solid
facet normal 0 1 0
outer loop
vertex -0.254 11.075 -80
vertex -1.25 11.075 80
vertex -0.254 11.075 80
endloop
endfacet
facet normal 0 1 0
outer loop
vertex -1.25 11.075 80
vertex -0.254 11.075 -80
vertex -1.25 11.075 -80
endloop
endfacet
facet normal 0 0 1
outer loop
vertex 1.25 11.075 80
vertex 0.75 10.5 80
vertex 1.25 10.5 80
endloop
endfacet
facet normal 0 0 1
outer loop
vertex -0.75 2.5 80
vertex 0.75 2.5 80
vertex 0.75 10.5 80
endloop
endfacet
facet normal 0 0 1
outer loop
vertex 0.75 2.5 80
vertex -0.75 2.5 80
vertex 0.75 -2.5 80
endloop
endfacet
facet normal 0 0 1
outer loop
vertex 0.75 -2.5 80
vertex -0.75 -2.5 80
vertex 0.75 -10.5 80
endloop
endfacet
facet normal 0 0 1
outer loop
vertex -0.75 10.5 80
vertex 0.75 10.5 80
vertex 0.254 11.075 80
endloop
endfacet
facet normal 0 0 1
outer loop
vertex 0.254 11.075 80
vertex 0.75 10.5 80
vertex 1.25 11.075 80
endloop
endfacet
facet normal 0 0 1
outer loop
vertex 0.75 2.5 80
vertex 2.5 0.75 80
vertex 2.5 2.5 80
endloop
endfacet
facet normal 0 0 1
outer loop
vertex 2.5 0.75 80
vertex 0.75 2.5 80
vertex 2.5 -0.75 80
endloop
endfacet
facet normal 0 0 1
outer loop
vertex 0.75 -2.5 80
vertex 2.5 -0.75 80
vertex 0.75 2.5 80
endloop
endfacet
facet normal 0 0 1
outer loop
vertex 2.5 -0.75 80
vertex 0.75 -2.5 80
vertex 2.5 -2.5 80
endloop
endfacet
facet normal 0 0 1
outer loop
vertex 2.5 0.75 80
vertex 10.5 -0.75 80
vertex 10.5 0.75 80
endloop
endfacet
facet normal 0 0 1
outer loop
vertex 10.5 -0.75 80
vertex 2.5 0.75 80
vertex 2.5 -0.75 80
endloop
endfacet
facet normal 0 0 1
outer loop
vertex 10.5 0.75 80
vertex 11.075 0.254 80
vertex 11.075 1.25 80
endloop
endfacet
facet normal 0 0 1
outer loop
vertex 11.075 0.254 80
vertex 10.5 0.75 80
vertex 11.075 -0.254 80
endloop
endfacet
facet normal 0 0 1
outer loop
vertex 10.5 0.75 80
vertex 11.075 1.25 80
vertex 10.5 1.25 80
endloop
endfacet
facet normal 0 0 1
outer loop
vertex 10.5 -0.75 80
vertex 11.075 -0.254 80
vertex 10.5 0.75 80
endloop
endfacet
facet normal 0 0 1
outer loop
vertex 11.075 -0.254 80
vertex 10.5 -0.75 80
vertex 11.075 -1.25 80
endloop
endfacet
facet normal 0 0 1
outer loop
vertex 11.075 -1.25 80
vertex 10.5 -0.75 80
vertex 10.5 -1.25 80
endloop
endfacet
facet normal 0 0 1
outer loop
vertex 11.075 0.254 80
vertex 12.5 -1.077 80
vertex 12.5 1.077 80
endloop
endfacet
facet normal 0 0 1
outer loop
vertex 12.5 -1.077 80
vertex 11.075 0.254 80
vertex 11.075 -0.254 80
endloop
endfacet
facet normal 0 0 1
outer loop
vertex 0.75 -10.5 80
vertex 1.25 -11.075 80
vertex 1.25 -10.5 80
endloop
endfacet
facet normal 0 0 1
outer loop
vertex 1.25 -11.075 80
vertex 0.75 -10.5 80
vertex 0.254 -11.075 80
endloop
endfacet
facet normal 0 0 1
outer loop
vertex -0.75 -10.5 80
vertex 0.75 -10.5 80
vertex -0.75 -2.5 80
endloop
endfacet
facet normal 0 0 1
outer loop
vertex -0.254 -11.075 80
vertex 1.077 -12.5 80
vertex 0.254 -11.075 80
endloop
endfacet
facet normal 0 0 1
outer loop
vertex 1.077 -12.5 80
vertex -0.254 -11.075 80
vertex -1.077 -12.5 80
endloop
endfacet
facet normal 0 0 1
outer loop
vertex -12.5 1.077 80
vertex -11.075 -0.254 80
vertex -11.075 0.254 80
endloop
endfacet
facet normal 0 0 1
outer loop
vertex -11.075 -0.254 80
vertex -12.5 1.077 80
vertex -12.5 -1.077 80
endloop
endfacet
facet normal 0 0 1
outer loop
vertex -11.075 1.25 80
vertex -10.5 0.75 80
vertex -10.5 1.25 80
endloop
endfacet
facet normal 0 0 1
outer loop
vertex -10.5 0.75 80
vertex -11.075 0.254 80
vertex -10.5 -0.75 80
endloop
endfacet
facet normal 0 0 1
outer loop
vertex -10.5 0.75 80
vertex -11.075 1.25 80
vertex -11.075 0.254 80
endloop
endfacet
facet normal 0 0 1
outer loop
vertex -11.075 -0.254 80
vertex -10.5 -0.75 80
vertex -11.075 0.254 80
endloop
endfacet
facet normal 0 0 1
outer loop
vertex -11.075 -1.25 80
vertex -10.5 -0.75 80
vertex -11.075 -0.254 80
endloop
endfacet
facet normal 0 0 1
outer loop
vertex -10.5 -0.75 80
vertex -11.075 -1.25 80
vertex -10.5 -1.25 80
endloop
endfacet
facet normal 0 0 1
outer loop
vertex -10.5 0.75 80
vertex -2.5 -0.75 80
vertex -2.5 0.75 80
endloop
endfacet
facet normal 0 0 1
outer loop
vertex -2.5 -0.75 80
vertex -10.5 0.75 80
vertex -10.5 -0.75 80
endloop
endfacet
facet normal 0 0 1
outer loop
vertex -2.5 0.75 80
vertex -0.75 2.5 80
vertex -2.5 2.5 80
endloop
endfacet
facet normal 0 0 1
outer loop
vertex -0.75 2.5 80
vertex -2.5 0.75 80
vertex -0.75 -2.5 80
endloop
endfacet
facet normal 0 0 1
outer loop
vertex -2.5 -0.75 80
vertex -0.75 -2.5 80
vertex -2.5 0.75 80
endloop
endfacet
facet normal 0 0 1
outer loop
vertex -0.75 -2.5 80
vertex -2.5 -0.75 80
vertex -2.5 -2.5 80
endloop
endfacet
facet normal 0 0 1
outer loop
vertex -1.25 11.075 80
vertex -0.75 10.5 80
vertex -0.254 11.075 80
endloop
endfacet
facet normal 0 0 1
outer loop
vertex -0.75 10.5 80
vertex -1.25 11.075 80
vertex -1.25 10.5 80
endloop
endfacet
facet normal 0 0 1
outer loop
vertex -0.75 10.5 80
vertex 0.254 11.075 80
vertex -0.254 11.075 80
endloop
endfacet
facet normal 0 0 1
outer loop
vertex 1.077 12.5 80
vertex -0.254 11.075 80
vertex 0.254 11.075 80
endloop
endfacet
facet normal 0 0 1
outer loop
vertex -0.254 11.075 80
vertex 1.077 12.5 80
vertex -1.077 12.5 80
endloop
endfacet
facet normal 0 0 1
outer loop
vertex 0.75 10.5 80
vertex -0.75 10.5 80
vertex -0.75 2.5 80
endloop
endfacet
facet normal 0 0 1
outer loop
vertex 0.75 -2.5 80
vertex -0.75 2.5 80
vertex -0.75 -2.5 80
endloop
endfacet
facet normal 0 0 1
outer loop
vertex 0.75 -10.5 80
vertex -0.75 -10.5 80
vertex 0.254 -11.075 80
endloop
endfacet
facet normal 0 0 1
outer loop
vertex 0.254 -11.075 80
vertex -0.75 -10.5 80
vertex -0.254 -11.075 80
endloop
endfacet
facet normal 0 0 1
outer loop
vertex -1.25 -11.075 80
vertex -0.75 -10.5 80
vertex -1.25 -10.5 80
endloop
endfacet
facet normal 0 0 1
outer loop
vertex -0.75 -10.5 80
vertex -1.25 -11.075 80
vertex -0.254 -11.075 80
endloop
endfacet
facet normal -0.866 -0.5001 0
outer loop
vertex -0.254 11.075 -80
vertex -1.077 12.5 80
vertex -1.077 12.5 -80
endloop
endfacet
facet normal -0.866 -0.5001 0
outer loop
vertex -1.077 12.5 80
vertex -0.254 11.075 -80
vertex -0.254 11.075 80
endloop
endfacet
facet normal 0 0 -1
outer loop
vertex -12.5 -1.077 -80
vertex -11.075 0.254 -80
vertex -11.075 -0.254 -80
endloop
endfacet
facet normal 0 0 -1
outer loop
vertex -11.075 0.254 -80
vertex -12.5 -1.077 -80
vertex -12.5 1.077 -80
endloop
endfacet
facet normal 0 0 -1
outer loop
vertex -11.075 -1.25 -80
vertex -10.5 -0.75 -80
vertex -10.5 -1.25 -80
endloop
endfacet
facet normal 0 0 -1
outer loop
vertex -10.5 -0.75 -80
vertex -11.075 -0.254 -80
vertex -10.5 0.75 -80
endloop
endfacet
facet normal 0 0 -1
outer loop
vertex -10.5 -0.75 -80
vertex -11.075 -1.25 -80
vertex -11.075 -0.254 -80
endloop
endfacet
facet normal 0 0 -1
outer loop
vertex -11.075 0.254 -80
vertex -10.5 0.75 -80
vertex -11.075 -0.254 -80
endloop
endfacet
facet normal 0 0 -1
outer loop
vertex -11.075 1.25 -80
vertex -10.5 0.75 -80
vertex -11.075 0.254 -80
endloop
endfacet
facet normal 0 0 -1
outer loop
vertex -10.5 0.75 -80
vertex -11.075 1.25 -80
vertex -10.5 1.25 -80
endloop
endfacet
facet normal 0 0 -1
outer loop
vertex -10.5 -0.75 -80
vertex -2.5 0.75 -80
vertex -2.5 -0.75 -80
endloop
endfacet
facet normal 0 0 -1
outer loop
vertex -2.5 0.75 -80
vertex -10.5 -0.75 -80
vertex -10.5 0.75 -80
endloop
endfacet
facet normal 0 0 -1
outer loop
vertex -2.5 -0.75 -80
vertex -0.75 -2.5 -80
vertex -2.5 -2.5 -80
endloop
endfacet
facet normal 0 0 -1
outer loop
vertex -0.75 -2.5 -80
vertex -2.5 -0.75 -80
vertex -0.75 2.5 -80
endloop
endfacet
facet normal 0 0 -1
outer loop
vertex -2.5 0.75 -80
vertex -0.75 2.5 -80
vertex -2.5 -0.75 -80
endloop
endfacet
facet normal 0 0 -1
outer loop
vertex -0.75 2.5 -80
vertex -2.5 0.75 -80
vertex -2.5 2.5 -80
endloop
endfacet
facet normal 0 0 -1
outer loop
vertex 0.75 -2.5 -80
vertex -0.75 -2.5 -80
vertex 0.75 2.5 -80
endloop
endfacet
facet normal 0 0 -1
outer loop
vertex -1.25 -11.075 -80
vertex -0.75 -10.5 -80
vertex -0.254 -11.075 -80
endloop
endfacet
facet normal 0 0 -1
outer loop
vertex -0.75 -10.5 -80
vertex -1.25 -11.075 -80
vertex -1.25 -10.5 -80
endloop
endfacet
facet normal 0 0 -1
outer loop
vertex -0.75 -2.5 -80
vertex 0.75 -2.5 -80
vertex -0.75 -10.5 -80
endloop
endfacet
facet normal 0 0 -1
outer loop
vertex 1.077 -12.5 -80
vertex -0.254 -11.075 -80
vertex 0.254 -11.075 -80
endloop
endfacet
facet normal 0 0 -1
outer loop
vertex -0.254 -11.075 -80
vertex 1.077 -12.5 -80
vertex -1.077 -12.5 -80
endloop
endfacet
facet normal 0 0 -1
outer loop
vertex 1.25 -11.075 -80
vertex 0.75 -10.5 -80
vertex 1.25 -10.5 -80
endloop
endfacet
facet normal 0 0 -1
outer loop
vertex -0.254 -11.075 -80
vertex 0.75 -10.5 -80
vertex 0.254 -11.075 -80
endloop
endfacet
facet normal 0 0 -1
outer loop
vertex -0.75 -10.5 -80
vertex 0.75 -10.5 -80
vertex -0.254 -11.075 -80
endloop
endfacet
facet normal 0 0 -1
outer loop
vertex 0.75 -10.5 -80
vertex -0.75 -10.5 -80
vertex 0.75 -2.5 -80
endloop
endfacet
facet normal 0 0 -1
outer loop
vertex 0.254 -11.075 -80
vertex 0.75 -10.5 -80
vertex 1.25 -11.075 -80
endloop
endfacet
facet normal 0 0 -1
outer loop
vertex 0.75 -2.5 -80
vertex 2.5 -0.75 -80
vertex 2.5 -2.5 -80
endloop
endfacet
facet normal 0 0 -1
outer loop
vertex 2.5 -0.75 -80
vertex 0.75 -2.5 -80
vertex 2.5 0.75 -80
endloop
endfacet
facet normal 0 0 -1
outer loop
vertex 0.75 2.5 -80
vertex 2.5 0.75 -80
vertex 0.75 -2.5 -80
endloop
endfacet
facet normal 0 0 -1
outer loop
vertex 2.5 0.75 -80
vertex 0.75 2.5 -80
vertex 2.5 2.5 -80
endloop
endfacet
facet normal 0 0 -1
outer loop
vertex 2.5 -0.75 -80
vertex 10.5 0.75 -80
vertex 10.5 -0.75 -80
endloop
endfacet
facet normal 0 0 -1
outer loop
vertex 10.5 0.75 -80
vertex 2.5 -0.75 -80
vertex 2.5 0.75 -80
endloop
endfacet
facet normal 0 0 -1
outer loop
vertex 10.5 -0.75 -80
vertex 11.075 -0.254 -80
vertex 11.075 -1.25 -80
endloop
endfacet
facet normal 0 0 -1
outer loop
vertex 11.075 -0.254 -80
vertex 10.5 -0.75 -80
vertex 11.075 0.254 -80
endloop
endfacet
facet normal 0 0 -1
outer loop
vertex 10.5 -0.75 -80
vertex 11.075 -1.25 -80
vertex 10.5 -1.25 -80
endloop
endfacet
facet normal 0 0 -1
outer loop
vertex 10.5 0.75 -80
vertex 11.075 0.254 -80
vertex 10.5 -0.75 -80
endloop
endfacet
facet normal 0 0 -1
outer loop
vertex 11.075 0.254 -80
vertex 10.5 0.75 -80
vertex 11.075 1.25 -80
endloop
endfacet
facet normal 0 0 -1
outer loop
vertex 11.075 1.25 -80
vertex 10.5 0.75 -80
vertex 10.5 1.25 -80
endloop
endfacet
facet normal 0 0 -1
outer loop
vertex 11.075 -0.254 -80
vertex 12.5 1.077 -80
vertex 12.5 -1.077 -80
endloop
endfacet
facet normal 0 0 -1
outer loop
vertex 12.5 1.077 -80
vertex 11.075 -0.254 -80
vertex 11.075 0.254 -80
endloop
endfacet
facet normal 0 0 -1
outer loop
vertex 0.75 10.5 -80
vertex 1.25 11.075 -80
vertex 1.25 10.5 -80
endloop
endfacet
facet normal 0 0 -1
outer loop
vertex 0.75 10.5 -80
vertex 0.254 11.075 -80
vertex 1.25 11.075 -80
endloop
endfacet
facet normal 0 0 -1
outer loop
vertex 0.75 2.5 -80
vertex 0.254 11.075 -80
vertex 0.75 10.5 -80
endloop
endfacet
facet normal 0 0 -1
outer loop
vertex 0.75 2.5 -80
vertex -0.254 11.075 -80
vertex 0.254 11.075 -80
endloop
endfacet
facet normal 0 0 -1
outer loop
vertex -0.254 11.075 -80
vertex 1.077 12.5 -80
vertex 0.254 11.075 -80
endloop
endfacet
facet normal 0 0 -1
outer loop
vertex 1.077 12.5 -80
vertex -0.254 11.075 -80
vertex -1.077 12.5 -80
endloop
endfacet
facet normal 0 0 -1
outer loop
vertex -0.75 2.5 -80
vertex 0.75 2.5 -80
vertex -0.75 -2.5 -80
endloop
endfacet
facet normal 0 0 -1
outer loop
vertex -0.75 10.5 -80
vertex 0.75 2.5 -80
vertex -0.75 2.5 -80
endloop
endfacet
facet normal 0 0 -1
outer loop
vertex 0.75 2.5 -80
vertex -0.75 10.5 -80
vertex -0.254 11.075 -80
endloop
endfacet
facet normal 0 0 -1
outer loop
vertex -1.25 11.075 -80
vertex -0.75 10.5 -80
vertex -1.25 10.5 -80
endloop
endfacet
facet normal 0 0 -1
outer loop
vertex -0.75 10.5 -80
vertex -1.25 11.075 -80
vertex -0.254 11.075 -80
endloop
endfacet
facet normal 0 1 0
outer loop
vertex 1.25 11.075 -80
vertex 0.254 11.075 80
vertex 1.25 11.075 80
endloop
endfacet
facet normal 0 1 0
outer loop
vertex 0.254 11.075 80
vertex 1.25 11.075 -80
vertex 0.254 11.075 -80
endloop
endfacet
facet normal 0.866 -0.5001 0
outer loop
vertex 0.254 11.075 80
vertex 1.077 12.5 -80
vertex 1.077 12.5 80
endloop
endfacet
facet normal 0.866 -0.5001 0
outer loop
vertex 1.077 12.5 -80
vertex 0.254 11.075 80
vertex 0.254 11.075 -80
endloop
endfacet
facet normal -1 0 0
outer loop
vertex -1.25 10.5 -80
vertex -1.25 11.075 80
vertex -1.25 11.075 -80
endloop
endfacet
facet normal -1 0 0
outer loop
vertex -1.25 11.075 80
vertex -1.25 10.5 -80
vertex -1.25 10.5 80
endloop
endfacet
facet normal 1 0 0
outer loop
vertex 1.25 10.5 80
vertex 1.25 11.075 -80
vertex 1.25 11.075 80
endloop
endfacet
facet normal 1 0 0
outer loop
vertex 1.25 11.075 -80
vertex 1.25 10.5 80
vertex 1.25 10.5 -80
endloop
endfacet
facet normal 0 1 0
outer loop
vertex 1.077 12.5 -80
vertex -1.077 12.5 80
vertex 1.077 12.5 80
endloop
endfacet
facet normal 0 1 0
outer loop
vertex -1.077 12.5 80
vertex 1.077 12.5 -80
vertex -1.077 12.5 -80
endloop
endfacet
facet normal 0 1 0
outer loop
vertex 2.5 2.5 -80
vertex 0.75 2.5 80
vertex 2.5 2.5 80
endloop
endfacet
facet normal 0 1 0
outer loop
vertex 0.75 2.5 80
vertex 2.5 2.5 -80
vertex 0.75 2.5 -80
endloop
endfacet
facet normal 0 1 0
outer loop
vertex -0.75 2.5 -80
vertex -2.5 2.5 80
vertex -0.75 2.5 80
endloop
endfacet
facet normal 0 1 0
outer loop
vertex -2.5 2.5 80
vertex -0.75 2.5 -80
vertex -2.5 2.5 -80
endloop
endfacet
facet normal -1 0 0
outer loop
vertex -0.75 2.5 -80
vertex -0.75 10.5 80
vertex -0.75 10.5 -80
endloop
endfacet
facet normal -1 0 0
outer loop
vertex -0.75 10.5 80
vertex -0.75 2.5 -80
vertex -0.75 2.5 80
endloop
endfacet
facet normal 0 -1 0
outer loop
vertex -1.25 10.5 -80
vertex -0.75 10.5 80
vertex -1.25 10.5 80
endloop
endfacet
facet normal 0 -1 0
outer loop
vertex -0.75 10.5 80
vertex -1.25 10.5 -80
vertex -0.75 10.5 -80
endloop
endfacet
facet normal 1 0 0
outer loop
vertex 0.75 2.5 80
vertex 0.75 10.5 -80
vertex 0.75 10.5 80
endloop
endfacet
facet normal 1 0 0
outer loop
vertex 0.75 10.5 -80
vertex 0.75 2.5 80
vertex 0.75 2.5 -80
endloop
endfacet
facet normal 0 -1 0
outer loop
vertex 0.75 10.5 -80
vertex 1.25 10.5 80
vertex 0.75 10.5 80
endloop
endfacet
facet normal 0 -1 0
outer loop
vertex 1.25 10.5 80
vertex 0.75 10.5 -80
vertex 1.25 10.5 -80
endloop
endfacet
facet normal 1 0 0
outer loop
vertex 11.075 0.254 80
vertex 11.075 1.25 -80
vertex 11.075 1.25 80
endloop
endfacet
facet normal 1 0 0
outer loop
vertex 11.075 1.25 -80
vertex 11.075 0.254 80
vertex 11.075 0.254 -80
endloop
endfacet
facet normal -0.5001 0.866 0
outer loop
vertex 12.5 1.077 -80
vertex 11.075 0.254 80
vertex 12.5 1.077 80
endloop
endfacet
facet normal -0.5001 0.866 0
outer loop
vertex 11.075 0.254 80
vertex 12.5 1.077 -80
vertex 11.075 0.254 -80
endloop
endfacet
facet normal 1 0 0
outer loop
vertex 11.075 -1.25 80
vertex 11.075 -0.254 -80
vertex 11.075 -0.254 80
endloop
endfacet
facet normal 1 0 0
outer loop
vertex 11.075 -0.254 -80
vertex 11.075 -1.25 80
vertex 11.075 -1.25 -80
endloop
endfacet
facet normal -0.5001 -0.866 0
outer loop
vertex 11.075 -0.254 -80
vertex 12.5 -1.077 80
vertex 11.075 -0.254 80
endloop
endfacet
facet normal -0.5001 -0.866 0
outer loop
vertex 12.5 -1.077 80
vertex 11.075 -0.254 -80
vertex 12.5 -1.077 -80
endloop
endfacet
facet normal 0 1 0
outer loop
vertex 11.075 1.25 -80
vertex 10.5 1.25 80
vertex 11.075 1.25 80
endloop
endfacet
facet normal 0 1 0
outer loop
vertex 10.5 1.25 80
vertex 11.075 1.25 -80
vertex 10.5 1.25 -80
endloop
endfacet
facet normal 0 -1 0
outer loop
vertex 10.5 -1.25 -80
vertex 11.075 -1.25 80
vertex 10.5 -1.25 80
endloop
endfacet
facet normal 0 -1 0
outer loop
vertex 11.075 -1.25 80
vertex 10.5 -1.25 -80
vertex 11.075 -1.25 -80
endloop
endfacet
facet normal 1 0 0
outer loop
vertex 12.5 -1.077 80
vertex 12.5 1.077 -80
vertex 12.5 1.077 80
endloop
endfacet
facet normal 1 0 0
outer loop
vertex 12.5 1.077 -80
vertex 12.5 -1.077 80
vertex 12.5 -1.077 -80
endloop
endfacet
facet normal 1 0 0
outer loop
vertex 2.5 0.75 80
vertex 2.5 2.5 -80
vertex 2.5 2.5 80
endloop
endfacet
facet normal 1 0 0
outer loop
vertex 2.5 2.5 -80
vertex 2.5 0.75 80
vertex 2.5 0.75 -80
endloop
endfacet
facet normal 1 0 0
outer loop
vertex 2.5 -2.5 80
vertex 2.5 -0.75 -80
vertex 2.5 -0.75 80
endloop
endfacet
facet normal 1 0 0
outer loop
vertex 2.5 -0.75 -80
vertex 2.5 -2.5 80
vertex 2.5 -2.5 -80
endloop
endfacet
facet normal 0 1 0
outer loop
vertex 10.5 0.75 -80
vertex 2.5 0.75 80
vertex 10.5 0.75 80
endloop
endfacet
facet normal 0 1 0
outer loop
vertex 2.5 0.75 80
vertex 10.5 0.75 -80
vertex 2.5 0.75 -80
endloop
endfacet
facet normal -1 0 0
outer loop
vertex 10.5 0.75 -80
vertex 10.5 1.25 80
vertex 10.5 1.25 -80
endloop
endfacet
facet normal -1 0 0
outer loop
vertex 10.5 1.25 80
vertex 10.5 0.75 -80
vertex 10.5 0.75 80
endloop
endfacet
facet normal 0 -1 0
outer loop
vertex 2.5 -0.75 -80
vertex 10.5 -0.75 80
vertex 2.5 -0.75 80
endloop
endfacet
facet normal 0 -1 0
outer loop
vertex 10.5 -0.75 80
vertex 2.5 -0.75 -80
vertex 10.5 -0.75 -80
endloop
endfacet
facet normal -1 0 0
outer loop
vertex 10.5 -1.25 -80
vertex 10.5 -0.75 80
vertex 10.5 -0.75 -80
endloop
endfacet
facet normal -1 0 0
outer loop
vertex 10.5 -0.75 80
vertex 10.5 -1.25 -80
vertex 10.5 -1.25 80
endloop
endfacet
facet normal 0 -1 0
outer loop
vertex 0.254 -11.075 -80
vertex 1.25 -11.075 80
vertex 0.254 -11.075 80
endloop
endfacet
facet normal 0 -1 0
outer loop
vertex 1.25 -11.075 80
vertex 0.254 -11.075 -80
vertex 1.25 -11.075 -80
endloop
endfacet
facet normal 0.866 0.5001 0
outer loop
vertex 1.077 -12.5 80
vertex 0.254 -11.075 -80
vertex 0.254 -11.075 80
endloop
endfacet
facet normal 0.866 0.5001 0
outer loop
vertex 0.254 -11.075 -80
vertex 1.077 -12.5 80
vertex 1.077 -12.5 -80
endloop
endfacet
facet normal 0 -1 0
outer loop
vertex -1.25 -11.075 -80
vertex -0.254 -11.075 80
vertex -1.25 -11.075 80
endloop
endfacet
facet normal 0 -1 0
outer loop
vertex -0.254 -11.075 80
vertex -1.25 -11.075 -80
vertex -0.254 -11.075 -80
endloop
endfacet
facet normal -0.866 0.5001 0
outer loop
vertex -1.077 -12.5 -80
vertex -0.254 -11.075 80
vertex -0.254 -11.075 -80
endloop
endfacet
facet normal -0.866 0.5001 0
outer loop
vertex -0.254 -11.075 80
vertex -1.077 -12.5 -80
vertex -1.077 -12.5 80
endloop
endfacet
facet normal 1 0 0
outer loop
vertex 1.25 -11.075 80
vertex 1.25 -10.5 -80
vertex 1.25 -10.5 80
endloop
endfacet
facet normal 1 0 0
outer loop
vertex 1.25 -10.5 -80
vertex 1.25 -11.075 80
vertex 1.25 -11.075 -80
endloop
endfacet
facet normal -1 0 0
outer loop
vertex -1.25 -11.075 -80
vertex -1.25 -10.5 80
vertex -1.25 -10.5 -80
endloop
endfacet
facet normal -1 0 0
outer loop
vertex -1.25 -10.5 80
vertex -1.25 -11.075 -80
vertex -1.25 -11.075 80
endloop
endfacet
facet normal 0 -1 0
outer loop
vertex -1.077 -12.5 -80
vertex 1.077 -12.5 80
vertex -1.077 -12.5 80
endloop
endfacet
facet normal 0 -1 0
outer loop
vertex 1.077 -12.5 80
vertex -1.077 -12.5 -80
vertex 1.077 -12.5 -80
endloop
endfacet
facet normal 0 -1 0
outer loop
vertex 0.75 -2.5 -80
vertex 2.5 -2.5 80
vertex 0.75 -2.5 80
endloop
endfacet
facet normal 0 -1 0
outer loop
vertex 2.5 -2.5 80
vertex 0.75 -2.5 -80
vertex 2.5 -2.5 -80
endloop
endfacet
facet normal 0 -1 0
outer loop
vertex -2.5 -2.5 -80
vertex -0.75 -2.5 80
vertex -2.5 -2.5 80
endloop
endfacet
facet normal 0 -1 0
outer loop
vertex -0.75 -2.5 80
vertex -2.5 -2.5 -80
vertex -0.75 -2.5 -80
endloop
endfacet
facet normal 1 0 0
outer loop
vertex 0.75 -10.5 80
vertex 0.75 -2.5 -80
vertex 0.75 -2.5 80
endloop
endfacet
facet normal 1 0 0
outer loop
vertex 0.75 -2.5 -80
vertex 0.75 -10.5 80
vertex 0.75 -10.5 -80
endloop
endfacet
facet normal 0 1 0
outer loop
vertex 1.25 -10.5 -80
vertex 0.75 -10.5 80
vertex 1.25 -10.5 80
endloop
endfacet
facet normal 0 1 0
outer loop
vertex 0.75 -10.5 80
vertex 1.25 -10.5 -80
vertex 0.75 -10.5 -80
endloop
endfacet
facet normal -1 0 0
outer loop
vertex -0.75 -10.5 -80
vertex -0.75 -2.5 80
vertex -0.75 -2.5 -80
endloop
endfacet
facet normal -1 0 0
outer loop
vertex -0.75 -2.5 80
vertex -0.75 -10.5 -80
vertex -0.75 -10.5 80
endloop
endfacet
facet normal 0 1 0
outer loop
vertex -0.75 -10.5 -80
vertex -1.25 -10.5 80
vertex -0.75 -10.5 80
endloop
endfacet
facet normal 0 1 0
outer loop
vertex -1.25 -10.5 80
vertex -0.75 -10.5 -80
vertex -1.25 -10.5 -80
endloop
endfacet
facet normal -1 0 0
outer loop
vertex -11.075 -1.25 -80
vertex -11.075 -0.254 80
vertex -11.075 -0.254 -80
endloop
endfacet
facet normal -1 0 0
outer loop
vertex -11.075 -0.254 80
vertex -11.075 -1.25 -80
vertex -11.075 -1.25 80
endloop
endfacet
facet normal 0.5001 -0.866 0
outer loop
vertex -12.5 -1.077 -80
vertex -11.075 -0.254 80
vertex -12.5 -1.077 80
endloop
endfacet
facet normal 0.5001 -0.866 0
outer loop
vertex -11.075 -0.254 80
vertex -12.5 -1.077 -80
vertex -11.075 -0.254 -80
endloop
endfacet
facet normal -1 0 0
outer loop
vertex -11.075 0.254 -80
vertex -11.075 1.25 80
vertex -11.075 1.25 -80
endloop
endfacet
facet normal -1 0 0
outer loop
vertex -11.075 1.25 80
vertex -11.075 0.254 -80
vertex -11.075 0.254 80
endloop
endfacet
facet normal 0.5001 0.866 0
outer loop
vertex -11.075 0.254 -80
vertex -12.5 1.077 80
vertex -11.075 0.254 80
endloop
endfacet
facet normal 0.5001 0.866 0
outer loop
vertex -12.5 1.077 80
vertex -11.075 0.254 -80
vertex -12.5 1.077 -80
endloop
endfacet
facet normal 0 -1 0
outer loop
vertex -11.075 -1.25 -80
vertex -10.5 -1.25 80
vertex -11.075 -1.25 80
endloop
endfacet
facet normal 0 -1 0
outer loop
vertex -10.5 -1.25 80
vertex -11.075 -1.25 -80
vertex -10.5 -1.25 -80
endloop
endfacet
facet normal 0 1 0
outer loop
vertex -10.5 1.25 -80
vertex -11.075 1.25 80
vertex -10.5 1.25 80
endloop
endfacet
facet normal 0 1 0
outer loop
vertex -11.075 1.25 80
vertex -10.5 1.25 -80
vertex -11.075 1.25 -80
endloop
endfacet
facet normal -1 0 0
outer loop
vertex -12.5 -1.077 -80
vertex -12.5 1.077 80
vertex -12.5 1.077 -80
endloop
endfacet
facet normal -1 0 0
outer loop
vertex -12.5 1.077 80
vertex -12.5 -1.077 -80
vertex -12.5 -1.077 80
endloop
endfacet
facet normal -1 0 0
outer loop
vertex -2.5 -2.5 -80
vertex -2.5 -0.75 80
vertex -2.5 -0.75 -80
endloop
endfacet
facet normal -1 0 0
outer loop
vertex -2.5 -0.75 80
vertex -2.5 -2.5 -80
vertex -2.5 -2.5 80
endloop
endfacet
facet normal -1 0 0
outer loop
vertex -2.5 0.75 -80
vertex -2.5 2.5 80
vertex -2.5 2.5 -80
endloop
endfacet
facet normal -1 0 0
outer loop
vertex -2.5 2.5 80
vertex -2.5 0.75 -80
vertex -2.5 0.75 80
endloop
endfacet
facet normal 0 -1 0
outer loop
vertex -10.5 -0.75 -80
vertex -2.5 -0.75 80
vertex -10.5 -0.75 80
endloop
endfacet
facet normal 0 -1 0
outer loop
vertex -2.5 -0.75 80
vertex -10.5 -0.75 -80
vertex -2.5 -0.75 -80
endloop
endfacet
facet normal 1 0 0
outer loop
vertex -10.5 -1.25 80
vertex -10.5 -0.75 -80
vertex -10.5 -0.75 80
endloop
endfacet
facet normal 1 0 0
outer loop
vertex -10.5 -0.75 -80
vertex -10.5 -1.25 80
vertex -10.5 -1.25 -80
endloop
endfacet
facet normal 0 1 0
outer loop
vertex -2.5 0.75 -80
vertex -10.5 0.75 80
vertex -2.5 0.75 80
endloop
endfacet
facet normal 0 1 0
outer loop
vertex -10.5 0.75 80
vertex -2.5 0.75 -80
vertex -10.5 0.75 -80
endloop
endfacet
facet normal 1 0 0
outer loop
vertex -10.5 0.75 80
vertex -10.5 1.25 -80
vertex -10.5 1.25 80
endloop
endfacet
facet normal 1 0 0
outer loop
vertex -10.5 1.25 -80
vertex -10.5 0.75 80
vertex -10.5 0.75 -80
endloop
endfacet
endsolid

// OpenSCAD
height = 160;
wall_thickness = 5;
connector_depth = 8;
wall_depth = 10;

union() {
    base();
    translate([0,wall_thickness*1.5,0]) {
        connector();
    }
    translate([wall_thickness*1.5,0,0]) {
        rotate([0,0,-90]) {
            connector();
        }
    }
    translate([0,-wall_thickness*1.5,0]) {
        rotate([0,0,-180]) {
            connector();
        }
    }
    translate([-wall_thickness*1.5,0,0]) {
        rotate([0,0,90]) {
            connector();
        }
    }
}


module base() {
    cube([wall_thickness,wall_thickness,height], true);
}


module connector() {
    connector_thickness = wall_thickness * 0.5;
    wall_diff = connector_thickness*0.2;
    translate([-connector_thickness/2,-wall_depth/2,-height/2]) {
        difference() {
            cube([connector_thickness,wall_depth,height]);
            cube([wall_diff,connector_depth,height]);
            translate([connector_thickness-wall_diff,0,0]){
                cube([wall_diff,connector_depth,height]);
            }
            triangle_rad = 1.15;
            translate([0,connector_depth + triangle_rad/(wall_diff*2),0]) {
                triangle(height, triangle_rad);
                translate([connector_thickness,0,0]) {
                    triangle(height, triangle_rad);
                }
            }
        }
    }
}

module triangle(height, triangle_rad) {
    rotate([0,0,90]) {
        cylinder(h=height, r=triangle_rad, $fn=3);
    }
}
